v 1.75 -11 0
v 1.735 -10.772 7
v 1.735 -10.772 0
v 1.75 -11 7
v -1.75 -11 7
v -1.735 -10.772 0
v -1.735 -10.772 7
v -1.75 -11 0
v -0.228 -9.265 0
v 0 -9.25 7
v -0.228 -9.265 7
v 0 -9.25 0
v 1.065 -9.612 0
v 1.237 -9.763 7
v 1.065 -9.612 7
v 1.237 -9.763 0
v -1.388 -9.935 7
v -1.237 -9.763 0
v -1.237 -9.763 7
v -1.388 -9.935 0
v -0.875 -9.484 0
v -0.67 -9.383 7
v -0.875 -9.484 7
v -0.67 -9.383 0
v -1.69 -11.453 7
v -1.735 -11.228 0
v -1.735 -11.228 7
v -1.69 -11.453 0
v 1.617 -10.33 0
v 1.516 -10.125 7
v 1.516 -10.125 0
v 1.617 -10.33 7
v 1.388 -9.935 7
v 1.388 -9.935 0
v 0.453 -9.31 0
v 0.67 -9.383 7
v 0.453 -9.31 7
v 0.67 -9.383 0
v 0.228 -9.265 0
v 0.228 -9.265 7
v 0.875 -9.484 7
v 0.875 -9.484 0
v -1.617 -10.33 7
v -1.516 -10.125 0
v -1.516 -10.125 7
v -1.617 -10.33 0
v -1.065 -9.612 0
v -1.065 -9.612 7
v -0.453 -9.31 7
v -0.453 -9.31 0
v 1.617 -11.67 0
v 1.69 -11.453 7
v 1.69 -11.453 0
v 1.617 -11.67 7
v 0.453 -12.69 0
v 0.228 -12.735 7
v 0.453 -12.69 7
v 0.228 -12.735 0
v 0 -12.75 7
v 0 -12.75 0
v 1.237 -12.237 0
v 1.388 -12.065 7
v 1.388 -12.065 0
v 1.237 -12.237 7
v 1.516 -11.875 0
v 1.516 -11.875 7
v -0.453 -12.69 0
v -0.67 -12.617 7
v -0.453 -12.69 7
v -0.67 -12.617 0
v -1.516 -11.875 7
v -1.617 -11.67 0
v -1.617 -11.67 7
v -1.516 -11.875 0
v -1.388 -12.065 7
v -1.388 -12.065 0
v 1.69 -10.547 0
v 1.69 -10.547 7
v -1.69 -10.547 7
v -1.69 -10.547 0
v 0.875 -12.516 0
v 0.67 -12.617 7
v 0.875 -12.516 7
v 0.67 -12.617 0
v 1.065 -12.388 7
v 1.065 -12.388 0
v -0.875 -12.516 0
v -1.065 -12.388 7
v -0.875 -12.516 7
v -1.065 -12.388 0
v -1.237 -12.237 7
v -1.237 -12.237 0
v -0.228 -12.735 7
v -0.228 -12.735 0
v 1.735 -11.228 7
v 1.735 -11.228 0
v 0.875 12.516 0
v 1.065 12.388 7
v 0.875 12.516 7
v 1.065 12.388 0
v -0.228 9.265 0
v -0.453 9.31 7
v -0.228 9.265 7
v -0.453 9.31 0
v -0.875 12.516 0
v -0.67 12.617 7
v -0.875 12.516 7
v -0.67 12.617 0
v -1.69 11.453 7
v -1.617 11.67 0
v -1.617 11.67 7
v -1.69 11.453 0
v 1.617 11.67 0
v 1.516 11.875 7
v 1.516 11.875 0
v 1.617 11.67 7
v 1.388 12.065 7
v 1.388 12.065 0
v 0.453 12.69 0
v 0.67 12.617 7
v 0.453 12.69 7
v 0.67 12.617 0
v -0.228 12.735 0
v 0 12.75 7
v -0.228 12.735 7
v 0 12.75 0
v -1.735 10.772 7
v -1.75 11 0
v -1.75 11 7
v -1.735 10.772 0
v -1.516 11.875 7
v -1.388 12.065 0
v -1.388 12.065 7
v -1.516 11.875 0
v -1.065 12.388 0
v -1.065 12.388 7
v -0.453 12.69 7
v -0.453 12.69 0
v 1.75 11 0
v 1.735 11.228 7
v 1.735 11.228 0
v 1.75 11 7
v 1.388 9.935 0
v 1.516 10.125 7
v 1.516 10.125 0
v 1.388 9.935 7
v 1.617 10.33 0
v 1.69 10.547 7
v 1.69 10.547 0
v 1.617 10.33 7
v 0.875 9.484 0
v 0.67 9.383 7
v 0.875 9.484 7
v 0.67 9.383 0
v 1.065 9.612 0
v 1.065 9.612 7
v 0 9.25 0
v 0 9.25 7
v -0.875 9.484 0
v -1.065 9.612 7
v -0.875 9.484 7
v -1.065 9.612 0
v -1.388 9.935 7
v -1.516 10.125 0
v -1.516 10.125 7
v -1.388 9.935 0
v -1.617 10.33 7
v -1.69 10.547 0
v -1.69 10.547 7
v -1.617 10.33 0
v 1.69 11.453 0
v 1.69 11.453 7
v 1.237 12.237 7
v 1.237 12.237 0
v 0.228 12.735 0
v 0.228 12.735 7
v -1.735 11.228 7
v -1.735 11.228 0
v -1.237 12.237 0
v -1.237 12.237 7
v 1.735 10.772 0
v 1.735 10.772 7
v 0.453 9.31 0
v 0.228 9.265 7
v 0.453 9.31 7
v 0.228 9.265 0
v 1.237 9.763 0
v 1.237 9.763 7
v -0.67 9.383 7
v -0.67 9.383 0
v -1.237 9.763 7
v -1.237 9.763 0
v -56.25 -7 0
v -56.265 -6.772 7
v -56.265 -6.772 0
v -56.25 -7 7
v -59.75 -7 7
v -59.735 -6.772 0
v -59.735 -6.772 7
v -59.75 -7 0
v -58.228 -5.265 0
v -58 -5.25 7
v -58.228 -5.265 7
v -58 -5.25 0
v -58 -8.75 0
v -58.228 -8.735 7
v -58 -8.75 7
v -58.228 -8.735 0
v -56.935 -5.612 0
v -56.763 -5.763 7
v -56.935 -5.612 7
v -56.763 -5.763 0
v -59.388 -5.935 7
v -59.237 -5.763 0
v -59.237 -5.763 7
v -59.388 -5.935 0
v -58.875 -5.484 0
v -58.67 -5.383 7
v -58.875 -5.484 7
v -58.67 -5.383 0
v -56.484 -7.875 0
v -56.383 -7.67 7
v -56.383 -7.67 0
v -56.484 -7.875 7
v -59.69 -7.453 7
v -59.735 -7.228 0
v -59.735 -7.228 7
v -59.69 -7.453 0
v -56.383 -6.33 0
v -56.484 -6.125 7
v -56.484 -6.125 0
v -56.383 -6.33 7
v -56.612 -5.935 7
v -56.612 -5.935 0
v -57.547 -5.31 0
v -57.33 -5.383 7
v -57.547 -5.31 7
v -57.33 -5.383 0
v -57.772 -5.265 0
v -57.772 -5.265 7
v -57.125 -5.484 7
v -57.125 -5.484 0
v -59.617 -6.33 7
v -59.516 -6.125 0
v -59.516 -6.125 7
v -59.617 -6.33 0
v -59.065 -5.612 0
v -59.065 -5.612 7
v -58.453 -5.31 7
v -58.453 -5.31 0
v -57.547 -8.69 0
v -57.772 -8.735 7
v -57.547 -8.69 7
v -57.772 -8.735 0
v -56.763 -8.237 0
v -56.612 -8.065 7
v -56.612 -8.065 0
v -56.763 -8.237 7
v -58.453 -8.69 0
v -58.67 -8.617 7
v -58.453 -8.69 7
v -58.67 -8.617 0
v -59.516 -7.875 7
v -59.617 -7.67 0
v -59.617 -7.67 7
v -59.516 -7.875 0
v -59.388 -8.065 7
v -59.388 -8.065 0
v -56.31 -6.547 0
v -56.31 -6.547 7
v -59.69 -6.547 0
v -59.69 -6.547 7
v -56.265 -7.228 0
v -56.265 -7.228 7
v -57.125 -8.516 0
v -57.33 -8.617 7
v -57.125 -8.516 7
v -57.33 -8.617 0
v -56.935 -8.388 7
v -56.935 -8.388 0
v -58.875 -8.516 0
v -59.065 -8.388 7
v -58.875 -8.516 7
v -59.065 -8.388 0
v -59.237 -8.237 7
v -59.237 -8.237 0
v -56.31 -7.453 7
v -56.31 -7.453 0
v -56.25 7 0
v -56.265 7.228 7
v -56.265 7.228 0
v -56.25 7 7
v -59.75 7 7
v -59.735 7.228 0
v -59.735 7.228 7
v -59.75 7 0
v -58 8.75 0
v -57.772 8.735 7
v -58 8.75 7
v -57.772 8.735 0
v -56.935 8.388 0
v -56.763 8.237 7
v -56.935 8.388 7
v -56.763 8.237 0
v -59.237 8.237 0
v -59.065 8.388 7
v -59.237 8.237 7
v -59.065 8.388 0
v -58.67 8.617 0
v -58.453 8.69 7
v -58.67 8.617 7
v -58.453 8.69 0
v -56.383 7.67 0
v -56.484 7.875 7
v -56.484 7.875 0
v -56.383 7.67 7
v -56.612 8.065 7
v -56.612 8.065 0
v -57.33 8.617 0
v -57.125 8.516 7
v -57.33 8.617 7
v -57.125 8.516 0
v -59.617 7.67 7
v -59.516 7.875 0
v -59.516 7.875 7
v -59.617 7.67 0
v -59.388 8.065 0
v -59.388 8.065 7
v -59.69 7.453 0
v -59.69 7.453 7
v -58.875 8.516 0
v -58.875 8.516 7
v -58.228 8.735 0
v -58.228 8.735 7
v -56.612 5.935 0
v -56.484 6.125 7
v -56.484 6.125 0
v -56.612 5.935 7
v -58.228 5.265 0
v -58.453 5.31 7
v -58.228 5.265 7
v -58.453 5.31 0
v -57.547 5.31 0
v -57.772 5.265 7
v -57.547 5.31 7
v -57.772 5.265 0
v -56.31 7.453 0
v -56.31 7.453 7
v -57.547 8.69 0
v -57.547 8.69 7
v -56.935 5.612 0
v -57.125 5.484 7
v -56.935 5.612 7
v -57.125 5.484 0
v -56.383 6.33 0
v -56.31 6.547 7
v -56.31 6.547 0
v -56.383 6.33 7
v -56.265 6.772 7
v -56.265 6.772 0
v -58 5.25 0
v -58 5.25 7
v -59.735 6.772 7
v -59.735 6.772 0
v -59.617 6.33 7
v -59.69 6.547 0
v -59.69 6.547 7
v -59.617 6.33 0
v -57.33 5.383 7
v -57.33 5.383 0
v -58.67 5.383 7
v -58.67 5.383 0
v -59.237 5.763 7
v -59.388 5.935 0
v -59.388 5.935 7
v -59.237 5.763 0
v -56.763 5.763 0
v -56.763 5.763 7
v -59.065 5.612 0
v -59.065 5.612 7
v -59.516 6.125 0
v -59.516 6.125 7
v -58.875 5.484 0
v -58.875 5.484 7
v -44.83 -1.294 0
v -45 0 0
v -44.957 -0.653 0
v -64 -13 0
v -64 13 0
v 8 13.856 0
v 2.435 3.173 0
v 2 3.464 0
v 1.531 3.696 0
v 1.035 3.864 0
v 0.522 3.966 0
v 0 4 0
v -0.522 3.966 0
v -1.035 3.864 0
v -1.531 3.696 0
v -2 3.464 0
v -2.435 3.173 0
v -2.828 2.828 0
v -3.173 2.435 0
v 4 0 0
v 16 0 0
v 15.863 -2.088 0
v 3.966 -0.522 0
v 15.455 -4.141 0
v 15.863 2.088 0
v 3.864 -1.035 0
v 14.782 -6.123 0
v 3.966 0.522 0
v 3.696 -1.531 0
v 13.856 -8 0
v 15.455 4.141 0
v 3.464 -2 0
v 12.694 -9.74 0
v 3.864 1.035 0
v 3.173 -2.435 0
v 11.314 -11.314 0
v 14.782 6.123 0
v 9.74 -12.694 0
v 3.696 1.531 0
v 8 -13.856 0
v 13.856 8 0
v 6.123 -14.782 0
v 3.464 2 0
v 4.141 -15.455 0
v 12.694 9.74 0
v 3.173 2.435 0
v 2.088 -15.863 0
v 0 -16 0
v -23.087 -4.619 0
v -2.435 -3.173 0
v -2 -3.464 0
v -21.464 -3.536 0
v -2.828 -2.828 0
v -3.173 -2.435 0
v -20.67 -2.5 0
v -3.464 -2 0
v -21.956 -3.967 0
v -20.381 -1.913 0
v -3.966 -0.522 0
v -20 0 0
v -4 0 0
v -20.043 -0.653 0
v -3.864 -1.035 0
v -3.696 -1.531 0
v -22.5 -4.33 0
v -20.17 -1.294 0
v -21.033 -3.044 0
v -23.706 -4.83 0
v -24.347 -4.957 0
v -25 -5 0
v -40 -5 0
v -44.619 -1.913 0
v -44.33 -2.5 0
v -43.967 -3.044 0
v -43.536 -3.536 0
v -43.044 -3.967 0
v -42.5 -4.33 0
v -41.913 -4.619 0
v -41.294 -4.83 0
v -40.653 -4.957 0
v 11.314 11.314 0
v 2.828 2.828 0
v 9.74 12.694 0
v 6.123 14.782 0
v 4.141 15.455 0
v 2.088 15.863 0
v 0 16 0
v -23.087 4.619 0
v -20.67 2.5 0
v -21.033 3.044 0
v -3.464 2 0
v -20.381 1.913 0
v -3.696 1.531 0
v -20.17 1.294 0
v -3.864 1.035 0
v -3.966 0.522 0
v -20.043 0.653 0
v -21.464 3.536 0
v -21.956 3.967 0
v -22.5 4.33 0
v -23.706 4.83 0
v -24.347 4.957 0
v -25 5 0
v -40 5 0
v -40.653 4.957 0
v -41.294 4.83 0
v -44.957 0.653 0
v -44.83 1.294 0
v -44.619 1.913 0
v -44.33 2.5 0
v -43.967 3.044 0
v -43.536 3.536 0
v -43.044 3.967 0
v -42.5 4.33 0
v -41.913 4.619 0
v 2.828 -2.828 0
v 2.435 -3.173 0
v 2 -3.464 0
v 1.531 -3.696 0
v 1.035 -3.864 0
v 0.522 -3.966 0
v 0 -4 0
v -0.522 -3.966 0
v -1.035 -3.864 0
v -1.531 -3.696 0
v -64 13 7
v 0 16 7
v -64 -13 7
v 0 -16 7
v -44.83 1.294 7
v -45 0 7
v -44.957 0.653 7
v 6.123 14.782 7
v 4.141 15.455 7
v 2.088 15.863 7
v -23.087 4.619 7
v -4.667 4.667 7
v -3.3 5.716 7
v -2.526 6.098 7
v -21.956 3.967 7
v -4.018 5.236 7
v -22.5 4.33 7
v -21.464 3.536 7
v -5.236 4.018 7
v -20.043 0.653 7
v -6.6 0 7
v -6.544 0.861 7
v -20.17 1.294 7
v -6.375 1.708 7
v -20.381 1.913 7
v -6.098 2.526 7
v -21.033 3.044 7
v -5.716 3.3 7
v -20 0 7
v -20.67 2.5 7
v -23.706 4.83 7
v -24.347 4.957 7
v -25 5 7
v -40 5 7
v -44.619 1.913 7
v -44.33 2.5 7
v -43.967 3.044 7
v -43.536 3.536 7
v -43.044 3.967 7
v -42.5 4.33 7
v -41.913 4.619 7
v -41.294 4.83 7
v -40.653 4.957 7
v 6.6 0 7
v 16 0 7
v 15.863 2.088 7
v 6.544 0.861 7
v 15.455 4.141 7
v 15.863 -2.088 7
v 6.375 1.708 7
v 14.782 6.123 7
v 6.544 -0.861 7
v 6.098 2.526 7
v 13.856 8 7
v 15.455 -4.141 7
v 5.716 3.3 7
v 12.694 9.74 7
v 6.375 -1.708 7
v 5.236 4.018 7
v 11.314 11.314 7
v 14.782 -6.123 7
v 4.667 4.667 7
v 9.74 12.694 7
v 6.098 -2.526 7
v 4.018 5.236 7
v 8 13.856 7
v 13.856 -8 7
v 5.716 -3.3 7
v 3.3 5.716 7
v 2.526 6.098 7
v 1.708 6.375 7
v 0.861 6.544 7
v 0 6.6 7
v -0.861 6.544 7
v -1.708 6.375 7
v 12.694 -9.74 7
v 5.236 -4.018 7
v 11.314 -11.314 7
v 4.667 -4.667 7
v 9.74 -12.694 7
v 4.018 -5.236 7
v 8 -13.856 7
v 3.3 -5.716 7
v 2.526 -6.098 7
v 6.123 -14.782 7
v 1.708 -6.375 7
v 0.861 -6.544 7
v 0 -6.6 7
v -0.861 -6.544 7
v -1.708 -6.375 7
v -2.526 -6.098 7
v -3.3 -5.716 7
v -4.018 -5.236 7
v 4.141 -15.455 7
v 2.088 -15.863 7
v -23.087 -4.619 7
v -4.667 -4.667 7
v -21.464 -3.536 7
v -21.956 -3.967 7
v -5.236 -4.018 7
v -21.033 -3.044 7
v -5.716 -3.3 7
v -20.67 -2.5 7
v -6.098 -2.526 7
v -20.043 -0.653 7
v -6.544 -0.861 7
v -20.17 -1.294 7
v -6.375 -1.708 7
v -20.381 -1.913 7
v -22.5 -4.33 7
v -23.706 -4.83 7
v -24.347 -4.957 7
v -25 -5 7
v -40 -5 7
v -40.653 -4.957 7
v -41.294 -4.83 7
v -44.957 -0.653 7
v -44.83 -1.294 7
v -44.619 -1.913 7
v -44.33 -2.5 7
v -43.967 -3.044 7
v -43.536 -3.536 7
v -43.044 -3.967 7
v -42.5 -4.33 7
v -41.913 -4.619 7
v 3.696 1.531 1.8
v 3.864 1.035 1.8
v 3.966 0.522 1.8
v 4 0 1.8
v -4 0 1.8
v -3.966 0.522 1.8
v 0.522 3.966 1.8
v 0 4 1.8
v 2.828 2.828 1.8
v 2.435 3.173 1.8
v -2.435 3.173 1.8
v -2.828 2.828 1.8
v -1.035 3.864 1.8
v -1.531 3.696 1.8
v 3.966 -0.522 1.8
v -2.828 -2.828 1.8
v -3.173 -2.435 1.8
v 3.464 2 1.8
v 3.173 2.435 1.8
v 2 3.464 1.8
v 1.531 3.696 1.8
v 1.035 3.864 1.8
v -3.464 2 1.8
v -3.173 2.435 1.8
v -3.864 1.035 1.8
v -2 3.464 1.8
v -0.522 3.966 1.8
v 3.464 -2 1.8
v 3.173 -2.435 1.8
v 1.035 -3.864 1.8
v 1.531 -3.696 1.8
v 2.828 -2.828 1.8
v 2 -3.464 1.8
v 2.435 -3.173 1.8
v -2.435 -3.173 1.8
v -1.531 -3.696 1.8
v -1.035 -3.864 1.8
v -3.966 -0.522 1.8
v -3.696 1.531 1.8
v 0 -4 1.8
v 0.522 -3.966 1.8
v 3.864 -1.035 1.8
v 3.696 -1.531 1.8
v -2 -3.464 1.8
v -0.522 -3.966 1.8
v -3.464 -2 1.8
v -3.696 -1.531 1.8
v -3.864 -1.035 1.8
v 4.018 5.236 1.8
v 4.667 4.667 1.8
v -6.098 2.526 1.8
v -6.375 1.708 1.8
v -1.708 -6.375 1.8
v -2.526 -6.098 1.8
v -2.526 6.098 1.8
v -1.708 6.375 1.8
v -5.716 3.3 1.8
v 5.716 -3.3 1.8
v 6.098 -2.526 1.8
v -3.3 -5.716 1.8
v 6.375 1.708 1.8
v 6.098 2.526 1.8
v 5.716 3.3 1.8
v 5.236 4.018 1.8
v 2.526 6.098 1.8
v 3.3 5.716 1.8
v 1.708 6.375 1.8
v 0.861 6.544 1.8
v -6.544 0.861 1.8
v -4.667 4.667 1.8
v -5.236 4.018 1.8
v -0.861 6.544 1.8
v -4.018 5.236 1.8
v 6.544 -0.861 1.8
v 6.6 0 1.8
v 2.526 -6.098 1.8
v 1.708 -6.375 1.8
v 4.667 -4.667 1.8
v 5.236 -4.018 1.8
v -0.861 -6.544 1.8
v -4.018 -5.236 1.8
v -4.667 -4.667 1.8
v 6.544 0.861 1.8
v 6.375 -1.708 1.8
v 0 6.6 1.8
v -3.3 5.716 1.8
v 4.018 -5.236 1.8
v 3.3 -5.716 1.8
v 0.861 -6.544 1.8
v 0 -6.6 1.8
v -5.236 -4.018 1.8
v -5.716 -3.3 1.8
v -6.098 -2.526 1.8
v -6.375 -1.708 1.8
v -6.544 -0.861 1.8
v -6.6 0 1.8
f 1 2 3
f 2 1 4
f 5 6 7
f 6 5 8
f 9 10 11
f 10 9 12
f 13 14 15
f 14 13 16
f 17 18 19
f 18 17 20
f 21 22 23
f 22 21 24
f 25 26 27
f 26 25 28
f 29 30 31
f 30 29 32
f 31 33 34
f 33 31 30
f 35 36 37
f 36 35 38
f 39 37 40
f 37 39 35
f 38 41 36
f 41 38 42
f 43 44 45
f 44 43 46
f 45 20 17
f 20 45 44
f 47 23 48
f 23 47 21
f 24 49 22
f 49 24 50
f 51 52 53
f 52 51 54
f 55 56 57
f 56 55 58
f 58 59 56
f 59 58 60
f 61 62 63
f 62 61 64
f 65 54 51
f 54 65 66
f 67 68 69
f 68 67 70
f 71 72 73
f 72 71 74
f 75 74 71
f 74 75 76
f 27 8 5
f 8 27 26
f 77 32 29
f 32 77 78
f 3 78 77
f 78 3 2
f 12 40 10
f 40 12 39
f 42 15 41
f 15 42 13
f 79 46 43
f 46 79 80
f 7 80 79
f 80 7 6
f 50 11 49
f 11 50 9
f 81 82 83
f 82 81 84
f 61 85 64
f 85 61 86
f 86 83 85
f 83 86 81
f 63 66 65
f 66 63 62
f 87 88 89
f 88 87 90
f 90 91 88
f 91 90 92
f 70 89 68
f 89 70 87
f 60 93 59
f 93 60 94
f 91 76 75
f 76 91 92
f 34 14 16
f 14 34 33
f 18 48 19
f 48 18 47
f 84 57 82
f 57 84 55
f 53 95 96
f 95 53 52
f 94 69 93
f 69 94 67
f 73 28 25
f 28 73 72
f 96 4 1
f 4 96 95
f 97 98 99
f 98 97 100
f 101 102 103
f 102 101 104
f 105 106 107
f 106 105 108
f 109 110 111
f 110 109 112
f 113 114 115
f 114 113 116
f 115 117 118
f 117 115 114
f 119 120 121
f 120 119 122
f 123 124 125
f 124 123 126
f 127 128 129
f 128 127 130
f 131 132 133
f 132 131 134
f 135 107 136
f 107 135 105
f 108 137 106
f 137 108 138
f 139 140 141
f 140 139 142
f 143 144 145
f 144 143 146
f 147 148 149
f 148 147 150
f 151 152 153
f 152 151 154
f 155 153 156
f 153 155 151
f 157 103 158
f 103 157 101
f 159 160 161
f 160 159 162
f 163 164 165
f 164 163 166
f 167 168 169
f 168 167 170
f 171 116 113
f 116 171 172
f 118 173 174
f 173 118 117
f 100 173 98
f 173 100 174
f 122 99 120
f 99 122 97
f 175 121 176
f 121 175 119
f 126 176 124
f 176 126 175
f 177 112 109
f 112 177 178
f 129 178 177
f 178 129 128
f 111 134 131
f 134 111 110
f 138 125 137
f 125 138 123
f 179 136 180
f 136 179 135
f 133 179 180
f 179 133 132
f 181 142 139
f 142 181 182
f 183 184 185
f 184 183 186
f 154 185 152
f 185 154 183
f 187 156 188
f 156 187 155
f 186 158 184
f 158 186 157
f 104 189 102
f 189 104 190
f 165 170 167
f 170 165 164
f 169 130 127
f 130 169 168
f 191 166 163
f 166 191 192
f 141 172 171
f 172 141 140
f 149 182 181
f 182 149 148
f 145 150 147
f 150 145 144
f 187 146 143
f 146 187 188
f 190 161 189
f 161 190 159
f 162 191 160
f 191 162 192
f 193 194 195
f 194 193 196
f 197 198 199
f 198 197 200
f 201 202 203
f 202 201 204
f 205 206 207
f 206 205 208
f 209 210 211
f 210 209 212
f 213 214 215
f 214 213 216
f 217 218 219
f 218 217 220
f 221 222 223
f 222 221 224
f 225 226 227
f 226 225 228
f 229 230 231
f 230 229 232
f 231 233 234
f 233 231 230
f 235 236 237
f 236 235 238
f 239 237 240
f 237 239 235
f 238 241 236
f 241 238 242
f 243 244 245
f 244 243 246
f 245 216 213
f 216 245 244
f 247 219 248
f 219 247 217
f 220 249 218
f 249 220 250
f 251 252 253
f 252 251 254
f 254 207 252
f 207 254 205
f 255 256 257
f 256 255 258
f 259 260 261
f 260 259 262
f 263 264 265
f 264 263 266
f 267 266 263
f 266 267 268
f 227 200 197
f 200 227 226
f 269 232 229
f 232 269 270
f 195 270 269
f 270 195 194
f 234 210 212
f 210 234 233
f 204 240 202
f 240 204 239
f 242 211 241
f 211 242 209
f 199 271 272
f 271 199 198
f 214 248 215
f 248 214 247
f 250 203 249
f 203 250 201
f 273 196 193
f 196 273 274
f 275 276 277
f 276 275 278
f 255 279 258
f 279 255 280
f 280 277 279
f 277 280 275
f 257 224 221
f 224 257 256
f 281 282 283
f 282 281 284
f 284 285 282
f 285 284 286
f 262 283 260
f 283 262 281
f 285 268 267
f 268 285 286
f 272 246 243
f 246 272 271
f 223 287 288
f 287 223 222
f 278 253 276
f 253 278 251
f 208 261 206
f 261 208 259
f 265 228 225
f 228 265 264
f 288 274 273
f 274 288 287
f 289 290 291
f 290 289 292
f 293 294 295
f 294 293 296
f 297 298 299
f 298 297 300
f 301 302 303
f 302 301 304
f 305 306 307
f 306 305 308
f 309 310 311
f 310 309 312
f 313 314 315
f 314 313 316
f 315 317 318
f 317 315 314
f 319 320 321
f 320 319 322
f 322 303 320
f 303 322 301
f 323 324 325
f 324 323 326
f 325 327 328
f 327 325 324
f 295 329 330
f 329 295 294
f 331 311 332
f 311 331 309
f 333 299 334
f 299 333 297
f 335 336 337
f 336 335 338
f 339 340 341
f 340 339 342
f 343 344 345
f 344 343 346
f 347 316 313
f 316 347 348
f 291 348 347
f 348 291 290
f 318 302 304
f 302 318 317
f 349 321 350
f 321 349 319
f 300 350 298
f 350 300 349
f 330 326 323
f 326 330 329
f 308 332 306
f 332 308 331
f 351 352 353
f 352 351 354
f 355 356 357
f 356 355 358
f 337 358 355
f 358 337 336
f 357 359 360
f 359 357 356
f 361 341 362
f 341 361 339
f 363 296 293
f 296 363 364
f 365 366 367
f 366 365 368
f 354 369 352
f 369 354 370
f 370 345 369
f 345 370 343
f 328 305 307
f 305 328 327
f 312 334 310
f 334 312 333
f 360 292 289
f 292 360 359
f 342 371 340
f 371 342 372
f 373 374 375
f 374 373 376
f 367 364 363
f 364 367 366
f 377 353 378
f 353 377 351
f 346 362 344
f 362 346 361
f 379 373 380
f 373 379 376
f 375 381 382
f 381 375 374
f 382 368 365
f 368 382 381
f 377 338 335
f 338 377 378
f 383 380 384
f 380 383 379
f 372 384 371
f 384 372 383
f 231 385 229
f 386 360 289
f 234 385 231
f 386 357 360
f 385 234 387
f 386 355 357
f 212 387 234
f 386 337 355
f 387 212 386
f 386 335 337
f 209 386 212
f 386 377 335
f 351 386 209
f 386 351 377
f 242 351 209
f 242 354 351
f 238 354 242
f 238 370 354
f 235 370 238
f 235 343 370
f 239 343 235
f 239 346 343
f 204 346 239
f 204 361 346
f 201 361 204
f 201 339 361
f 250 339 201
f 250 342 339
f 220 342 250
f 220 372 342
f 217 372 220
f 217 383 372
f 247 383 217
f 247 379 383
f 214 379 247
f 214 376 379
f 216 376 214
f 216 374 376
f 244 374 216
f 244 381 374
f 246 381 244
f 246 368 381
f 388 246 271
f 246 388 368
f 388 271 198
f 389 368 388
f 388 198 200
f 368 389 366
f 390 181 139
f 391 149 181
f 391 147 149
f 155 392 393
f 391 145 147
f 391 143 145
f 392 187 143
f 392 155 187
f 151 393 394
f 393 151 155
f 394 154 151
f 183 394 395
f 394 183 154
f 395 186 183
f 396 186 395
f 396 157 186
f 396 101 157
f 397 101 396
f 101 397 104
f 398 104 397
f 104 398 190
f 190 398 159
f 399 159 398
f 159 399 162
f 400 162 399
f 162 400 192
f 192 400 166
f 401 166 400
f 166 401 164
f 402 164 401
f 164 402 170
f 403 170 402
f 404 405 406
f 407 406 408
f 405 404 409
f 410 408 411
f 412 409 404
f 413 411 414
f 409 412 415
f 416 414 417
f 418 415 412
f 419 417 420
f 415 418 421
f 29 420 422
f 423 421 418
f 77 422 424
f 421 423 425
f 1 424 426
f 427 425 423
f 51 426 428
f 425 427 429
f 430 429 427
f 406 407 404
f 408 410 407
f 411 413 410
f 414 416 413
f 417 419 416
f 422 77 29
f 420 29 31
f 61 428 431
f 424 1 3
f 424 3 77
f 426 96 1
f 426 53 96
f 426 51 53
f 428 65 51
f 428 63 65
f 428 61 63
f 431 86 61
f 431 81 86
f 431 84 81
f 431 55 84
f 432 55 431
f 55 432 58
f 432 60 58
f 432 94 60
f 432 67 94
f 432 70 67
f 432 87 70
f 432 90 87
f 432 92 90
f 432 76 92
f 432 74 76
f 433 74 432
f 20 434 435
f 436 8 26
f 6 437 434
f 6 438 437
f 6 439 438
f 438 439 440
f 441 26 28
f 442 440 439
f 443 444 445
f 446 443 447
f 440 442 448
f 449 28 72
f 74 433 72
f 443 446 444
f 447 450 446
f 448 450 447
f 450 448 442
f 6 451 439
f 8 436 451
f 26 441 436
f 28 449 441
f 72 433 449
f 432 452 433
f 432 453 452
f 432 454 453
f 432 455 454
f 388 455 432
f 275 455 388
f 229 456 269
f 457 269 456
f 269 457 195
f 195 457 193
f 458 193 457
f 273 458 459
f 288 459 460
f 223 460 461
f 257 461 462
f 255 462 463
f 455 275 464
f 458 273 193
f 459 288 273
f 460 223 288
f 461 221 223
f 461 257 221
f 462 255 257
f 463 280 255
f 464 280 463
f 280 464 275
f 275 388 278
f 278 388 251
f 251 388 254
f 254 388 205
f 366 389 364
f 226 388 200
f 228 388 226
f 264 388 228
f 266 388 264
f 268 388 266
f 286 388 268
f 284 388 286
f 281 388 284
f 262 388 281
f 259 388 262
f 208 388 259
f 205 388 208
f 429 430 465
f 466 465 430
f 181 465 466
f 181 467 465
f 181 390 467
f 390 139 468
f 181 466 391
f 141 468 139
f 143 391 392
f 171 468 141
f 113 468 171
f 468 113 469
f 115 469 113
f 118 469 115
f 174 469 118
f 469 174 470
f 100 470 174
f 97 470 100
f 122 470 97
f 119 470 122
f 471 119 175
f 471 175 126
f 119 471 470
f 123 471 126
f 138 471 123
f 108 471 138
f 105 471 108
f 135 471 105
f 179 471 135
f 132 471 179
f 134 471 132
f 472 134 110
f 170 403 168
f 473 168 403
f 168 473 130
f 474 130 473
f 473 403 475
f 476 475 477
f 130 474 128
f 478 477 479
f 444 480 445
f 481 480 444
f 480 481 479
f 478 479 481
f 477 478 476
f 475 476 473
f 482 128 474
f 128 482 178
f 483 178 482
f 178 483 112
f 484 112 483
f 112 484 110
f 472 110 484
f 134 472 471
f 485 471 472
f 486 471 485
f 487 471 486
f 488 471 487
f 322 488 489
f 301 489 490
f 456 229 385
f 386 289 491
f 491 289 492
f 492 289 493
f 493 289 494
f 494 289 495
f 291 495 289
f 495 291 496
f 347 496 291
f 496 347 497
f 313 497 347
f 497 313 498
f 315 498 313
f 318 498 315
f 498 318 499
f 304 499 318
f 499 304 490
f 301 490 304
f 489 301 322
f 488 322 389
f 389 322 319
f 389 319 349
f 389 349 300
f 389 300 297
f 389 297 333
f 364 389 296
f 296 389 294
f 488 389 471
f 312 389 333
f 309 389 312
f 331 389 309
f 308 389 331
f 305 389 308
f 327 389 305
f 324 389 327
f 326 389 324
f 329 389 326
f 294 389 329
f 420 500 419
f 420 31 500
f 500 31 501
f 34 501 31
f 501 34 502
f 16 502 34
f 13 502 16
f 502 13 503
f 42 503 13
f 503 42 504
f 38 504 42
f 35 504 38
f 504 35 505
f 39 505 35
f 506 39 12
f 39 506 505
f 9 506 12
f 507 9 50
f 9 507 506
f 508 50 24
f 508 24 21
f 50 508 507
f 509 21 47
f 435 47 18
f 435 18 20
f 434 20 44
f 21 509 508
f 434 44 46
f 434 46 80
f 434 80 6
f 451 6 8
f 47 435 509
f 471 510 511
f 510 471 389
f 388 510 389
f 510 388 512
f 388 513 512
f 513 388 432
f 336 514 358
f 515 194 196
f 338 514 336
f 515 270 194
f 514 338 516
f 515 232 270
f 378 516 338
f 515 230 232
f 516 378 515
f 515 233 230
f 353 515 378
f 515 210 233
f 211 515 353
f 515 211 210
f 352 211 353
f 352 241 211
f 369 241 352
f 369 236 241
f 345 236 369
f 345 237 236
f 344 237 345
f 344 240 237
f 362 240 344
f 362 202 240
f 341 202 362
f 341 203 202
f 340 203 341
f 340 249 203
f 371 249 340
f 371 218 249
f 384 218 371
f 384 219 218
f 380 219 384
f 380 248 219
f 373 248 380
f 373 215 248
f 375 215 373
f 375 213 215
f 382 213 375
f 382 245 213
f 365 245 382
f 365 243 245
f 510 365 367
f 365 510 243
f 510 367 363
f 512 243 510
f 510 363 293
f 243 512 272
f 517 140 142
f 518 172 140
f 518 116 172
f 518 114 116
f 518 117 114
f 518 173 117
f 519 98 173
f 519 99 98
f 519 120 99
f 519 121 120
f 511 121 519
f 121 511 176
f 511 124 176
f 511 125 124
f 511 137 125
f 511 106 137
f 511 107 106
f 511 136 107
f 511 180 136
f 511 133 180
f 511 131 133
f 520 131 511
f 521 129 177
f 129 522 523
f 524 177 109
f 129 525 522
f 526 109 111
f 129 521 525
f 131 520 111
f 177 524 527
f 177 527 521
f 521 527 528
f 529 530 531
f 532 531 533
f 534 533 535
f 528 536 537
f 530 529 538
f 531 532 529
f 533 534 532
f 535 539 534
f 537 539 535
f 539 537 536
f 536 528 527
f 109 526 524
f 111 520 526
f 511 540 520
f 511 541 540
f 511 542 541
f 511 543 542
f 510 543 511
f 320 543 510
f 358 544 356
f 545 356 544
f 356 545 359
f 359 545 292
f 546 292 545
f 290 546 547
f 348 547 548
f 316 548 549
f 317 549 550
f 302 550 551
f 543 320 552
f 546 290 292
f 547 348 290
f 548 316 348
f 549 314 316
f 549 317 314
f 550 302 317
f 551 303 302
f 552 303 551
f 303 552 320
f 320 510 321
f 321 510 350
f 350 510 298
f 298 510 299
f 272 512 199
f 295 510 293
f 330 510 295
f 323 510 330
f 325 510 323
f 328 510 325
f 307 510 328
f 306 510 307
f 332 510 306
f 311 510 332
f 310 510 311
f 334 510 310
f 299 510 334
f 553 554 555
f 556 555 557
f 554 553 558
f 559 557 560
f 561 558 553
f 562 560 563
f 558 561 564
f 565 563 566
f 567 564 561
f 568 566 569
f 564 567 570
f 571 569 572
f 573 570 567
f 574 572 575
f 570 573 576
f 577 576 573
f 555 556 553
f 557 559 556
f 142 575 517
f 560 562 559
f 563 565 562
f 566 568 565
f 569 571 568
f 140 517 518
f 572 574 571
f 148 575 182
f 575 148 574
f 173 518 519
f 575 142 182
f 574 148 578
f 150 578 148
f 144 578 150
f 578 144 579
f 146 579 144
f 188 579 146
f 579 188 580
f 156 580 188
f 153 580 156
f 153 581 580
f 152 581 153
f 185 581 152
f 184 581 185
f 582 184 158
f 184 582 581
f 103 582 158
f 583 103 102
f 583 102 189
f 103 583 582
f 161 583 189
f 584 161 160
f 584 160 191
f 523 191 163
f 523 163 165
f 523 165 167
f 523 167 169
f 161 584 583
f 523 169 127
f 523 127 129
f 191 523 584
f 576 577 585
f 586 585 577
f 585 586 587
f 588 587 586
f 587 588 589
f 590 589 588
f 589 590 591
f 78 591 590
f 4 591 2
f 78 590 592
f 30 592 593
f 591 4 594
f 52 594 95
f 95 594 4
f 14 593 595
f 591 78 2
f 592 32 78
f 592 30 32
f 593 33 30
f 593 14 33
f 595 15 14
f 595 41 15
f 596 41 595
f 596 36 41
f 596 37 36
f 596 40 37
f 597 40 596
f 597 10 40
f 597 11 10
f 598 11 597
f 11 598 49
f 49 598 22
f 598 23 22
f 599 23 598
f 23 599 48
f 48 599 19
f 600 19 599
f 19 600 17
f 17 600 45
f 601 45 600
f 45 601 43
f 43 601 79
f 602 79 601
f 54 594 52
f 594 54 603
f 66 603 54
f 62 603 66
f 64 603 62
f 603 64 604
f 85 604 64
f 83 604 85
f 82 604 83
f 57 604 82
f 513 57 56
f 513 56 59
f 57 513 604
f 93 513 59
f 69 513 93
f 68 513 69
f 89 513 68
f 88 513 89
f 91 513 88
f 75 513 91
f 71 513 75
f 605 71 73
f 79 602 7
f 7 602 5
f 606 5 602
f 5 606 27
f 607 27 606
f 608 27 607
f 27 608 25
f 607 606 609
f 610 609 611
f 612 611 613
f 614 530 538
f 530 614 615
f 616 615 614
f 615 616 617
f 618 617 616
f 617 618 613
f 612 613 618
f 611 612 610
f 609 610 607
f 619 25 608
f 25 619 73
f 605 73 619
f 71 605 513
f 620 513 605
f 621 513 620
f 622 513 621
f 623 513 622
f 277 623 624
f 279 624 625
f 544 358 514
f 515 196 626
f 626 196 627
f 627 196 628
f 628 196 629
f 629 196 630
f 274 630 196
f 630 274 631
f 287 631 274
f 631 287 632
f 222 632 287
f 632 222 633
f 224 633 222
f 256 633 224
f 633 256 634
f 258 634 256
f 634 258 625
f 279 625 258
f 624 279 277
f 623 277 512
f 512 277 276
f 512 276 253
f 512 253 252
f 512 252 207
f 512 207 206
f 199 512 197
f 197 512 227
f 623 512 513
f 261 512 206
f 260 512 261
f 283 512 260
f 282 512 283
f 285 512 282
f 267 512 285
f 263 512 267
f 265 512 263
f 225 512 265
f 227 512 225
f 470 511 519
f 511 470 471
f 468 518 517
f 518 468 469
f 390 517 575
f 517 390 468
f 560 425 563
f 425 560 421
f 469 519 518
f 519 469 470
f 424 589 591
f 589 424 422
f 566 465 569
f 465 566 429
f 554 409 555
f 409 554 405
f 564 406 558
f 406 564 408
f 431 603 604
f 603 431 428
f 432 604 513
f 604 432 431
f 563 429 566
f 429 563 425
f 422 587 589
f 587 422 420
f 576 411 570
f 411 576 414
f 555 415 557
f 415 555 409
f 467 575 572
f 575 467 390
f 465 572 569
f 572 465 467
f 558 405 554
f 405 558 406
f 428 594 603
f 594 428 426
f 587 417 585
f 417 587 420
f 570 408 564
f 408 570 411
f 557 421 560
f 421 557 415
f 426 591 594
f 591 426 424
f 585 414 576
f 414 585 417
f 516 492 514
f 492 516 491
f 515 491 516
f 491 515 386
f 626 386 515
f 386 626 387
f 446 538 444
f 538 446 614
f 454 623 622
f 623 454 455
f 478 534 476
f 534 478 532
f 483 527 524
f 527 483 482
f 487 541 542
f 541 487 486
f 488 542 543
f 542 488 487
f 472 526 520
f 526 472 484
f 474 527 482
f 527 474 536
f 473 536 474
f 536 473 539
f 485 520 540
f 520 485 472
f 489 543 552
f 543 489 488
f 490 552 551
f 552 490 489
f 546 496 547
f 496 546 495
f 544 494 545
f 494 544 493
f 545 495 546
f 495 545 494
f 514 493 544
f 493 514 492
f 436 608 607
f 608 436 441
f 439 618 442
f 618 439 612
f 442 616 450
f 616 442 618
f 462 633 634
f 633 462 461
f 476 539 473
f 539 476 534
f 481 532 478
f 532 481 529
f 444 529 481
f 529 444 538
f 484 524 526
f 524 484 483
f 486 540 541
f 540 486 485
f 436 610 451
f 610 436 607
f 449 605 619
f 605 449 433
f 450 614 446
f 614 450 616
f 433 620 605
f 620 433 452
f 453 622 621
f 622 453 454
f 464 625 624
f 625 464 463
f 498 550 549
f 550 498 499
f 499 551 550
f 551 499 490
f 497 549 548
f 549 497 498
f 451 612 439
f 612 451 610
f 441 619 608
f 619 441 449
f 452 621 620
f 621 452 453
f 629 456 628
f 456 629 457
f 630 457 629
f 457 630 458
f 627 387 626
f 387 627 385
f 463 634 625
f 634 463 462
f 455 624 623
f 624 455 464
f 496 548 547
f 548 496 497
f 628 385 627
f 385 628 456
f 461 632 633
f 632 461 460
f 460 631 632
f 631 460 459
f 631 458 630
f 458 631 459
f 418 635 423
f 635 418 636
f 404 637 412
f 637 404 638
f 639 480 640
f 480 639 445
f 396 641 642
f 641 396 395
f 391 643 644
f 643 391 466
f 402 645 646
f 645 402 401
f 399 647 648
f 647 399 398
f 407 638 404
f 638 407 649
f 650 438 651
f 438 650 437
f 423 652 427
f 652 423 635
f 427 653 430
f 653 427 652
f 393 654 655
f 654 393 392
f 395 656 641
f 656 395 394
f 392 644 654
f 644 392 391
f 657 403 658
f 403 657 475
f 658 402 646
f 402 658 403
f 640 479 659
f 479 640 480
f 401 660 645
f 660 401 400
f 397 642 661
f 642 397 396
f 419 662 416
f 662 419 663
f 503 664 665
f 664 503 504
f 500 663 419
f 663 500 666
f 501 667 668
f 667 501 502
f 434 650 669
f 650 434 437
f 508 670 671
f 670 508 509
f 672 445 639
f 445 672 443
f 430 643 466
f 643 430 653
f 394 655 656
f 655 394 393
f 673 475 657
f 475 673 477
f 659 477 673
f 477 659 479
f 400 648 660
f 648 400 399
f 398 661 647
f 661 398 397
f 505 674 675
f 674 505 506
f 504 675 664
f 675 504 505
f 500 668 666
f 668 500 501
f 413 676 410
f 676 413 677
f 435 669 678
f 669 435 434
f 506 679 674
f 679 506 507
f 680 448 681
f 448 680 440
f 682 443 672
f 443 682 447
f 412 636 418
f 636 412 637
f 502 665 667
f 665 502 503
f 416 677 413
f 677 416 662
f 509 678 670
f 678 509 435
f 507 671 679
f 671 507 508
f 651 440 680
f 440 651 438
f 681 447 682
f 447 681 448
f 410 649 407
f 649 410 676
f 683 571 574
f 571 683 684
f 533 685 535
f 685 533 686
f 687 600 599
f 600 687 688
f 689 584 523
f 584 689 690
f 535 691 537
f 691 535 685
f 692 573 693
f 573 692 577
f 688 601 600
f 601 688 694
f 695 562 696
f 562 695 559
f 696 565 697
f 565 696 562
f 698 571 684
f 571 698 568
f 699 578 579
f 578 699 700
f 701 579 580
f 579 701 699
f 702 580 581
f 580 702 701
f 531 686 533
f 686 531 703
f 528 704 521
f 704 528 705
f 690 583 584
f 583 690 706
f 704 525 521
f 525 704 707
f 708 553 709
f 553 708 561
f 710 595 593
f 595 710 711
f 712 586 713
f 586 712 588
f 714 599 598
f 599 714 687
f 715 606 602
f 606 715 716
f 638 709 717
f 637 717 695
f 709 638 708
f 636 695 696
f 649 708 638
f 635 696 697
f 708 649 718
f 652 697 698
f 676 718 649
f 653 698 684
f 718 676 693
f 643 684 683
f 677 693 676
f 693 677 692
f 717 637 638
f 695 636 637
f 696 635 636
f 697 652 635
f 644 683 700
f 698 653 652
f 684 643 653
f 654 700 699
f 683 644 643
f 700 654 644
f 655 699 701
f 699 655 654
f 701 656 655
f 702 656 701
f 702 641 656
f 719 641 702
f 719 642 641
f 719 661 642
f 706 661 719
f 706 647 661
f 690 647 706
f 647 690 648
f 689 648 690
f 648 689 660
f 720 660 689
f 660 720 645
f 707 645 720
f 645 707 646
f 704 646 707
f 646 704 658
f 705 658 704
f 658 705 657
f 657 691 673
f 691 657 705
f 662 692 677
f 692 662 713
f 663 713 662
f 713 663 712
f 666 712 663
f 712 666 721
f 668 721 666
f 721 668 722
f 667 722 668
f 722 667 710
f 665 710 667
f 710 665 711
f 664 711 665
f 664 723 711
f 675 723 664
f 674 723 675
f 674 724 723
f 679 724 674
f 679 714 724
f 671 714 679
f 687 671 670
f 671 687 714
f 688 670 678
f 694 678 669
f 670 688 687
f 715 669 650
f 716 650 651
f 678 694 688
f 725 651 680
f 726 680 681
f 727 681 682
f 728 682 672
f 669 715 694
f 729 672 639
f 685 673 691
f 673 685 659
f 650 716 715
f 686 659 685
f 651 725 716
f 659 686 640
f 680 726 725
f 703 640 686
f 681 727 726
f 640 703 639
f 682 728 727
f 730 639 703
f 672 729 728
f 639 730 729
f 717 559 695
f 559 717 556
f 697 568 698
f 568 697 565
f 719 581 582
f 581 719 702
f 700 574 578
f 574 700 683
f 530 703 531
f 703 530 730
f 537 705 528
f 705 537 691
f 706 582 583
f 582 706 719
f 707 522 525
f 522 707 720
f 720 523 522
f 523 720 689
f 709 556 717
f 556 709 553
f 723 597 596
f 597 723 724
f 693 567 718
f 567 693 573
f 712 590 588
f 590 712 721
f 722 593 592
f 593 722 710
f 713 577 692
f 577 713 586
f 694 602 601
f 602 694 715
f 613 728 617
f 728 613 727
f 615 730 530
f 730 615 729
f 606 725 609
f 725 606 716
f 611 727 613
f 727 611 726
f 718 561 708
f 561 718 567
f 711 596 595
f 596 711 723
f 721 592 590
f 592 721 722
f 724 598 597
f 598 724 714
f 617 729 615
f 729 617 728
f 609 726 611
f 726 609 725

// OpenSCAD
// file: hobby-joint-common.scad
// Rev A local joint datum: rotation axis at x=y=0, axial direction +z.
$fn=48;
shaft_x=-10.35;
horn_z=50;
front_t=5;
rear_top=-16.2;
rear_t=7;
bridge_r=58;
bridge_length=horn_z-rear_top;
bridge_pitch=14;
seat_d=13.2;
seat_depth=5.2;
module bridge_holes(h) {
    for(y=[-bridge_pitch/2,bridge_pitch/2])
        translate([-bridge_r,y,-1]) cylinder(d=3.5,h=h+2);
}
module arm_blank(t) {
    linear_extrude(t) hull() {
        circle(d=32);
        translate([-bridge_r,0]) square([12,26],center=true);
    }
}
module arm_window(t) {
    translate([0,0,-1]) linear_extrude(t+2) hull()
        for(x=[-40,-25]) translate([x,0]) circle(d=10);
}
// main file
include <hobby-joint-common.scad>
module rear_arm() {
    difference() {
        arm_blank(rear_t);
        arm_window(rear_t);
        translate([0,0,-1]) cylinder(d=8,h=rear_t+2);
        translate([0,0,rear_t-seat_depth]) cylinder(d=seat_d,h=seat_depth+1);
        for(y=[-11,11]) translate([0,y,-1]) cylinder(d=3.5,h=rear_t+2);
        bridge_holes(rear_t);
    }
}
rear_arm();
